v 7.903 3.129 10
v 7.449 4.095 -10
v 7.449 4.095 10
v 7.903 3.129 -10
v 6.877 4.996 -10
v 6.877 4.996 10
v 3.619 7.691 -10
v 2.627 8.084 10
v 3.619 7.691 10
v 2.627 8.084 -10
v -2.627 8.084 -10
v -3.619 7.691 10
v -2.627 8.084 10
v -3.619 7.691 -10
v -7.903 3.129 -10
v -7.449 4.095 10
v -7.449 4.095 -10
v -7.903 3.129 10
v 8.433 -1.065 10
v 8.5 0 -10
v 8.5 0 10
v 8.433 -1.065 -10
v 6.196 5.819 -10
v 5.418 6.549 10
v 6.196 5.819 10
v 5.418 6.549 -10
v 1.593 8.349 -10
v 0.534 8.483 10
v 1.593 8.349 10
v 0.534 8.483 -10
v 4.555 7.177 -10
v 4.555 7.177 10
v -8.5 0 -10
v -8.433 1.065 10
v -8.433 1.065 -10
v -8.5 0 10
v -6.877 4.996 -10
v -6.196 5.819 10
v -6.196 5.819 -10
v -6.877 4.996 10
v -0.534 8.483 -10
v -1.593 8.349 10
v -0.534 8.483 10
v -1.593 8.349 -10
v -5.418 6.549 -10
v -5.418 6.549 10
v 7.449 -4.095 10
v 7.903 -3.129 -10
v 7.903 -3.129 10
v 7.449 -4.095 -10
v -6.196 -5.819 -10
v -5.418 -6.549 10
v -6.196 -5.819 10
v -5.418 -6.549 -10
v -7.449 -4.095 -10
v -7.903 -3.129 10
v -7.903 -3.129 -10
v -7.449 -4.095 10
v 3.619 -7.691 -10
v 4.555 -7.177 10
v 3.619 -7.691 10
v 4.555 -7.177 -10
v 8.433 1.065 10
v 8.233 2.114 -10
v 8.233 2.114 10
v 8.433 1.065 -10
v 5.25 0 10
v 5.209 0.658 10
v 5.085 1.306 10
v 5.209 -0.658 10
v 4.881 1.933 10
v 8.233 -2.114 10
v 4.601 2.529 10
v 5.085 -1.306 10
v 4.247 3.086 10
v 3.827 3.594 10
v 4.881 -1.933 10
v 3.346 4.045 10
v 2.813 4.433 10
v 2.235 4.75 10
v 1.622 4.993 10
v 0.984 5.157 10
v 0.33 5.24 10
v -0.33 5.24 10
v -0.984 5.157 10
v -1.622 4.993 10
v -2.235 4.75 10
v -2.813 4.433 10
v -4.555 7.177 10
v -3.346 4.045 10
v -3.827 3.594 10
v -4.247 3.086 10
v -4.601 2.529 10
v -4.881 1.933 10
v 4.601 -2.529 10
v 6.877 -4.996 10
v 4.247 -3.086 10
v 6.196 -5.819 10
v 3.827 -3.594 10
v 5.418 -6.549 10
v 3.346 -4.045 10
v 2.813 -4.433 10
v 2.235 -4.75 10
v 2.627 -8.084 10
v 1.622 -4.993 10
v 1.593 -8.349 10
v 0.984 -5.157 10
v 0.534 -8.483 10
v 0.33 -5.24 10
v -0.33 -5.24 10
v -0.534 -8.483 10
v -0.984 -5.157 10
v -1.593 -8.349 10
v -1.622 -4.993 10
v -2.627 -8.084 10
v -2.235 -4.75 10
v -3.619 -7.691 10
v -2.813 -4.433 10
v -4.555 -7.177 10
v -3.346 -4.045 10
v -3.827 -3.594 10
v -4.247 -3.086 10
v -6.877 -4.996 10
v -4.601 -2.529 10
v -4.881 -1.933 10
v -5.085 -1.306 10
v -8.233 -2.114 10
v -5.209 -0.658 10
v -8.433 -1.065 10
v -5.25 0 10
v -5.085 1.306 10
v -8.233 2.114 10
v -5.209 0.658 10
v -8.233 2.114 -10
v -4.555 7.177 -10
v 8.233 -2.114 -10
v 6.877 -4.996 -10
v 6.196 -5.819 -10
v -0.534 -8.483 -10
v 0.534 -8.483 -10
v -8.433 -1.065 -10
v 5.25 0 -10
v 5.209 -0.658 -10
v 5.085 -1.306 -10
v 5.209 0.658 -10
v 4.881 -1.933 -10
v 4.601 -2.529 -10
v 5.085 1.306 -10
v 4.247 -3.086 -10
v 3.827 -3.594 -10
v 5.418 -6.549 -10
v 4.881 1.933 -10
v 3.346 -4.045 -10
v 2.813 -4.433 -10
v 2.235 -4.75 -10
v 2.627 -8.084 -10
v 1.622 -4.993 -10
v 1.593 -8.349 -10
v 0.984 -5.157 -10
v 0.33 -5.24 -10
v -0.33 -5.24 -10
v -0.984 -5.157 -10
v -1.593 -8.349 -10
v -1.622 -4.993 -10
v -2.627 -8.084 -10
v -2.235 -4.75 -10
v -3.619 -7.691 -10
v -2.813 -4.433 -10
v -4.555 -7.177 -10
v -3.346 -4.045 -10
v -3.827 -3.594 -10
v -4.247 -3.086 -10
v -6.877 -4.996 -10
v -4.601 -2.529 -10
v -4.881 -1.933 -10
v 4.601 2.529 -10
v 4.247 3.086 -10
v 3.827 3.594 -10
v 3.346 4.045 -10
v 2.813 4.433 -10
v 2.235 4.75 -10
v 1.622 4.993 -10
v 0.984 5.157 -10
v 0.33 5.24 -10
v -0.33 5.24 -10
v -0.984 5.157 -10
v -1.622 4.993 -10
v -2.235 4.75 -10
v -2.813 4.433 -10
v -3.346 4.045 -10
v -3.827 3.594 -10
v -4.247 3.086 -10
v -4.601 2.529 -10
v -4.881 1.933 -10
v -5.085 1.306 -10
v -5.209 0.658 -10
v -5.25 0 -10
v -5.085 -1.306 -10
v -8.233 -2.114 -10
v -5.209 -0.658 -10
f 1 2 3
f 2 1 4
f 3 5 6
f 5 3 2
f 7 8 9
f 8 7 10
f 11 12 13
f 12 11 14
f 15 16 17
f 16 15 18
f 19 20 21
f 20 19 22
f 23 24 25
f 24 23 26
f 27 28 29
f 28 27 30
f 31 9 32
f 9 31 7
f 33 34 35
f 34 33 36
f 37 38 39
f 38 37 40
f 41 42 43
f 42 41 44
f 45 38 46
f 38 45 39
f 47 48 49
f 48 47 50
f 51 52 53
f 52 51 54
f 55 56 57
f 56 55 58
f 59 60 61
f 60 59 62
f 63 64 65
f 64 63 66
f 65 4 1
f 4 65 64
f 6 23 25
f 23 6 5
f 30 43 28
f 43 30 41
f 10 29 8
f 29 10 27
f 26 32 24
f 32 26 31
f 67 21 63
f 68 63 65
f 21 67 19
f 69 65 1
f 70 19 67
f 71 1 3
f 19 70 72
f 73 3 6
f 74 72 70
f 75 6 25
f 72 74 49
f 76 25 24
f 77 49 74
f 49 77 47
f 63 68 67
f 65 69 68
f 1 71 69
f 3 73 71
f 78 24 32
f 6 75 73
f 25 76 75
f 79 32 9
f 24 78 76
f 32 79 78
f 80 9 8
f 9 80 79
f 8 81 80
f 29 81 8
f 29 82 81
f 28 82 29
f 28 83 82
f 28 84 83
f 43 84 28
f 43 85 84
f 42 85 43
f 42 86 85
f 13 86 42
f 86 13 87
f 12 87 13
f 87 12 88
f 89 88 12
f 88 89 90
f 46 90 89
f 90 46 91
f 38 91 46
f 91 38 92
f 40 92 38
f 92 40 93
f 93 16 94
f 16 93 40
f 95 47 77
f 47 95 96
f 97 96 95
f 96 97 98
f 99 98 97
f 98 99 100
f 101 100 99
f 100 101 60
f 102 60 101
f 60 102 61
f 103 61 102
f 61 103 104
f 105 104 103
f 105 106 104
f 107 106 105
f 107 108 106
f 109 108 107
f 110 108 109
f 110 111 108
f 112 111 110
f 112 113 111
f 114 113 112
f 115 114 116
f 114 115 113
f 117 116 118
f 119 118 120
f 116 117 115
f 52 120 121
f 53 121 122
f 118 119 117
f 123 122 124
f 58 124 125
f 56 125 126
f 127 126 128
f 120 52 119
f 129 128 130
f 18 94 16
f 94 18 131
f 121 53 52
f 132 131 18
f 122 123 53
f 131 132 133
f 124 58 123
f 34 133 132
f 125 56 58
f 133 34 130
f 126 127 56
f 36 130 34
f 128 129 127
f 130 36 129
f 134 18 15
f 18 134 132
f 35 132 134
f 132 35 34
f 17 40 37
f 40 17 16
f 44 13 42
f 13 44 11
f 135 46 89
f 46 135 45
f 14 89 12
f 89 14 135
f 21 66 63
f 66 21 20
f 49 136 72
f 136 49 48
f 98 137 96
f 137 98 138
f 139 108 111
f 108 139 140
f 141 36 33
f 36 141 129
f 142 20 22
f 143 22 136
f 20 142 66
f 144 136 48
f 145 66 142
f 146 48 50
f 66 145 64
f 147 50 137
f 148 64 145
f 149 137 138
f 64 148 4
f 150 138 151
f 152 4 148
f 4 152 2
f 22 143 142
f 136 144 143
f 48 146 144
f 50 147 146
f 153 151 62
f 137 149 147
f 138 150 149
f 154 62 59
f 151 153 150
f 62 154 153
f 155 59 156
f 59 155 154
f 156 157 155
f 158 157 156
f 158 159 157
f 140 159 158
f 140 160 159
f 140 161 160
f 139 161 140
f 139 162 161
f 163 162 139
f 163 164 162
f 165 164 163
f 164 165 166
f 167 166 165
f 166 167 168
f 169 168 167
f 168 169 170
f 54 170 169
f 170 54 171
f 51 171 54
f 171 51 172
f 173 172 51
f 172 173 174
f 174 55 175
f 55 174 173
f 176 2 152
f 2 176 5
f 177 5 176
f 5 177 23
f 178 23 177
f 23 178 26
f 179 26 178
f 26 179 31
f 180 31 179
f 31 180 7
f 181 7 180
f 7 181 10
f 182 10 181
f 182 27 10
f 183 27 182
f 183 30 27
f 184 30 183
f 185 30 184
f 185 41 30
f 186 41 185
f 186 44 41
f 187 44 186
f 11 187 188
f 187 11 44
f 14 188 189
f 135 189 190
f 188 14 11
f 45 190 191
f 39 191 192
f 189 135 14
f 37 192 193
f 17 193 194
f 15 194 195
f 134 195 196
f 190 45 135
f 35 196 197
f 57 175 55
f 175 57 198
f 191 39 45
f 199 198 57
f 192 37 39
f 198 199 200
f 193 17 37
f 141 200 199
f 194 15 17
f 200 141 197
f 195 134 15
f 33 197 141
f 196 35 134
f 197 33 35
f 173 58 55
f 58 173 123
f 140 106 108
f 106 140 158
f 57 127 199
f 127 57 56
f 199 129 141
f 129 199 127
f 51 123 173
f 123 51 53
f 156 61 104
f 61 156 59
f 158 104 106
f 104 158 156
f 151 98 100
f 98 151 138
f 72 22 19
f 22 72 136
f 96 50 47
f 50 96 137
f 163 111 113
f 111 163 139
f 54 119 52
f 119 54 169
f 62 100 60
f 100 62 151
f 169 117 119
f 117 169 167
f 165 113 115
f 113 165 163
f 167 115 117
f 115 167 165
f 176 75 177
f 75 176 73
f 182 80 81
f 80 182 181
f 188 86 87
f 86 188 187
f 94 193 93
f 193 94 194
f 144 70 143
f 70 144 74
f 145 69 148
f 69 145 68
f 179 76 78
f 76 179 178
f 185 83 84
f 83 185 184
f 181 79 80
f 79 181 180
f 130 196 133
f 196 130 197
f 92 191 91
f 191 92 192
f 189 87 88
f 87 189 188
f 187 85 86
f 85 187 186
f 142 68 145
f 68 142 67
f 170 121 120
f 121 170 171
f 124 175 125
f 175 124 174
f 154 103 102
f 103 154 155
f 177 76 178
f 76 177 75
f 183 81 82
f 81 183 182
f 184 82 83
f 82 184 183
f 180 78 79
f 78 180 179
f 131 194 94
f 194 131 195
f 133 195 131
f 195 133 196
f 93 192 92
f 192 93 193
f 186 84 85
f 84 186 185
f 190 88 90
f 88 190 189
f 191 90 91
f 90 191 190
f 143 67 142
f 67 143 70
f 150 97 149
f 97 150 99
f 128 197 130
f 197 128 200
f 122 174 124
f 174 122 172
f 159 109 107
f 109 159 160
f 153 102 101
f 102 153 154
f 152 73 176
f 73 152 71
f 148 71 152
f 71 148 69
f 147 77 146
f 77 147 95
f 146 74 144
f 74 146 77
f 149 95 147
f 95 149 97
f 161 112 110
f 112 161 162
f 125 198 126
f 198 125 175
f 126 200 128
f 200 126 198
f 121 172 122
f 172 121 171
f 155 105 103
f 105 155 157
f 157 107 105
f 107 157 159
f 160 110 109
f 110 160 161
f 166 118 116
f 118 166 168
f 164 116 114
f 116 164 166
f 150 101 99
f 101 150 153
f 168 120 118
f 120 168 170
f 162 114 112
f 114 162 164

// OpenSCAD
$fn = 50;


difference() {
	union() {
		translate(v = [0, 0, -10.0000000000]) {
			cylinder(h = 20, r = 8.5000000000);
		}
	}
	union() {
		translate(v = [0, 0, -100.0000000000]) {
			cylinder(h = 200, r = 5.2500000000);
		}
	}
}
